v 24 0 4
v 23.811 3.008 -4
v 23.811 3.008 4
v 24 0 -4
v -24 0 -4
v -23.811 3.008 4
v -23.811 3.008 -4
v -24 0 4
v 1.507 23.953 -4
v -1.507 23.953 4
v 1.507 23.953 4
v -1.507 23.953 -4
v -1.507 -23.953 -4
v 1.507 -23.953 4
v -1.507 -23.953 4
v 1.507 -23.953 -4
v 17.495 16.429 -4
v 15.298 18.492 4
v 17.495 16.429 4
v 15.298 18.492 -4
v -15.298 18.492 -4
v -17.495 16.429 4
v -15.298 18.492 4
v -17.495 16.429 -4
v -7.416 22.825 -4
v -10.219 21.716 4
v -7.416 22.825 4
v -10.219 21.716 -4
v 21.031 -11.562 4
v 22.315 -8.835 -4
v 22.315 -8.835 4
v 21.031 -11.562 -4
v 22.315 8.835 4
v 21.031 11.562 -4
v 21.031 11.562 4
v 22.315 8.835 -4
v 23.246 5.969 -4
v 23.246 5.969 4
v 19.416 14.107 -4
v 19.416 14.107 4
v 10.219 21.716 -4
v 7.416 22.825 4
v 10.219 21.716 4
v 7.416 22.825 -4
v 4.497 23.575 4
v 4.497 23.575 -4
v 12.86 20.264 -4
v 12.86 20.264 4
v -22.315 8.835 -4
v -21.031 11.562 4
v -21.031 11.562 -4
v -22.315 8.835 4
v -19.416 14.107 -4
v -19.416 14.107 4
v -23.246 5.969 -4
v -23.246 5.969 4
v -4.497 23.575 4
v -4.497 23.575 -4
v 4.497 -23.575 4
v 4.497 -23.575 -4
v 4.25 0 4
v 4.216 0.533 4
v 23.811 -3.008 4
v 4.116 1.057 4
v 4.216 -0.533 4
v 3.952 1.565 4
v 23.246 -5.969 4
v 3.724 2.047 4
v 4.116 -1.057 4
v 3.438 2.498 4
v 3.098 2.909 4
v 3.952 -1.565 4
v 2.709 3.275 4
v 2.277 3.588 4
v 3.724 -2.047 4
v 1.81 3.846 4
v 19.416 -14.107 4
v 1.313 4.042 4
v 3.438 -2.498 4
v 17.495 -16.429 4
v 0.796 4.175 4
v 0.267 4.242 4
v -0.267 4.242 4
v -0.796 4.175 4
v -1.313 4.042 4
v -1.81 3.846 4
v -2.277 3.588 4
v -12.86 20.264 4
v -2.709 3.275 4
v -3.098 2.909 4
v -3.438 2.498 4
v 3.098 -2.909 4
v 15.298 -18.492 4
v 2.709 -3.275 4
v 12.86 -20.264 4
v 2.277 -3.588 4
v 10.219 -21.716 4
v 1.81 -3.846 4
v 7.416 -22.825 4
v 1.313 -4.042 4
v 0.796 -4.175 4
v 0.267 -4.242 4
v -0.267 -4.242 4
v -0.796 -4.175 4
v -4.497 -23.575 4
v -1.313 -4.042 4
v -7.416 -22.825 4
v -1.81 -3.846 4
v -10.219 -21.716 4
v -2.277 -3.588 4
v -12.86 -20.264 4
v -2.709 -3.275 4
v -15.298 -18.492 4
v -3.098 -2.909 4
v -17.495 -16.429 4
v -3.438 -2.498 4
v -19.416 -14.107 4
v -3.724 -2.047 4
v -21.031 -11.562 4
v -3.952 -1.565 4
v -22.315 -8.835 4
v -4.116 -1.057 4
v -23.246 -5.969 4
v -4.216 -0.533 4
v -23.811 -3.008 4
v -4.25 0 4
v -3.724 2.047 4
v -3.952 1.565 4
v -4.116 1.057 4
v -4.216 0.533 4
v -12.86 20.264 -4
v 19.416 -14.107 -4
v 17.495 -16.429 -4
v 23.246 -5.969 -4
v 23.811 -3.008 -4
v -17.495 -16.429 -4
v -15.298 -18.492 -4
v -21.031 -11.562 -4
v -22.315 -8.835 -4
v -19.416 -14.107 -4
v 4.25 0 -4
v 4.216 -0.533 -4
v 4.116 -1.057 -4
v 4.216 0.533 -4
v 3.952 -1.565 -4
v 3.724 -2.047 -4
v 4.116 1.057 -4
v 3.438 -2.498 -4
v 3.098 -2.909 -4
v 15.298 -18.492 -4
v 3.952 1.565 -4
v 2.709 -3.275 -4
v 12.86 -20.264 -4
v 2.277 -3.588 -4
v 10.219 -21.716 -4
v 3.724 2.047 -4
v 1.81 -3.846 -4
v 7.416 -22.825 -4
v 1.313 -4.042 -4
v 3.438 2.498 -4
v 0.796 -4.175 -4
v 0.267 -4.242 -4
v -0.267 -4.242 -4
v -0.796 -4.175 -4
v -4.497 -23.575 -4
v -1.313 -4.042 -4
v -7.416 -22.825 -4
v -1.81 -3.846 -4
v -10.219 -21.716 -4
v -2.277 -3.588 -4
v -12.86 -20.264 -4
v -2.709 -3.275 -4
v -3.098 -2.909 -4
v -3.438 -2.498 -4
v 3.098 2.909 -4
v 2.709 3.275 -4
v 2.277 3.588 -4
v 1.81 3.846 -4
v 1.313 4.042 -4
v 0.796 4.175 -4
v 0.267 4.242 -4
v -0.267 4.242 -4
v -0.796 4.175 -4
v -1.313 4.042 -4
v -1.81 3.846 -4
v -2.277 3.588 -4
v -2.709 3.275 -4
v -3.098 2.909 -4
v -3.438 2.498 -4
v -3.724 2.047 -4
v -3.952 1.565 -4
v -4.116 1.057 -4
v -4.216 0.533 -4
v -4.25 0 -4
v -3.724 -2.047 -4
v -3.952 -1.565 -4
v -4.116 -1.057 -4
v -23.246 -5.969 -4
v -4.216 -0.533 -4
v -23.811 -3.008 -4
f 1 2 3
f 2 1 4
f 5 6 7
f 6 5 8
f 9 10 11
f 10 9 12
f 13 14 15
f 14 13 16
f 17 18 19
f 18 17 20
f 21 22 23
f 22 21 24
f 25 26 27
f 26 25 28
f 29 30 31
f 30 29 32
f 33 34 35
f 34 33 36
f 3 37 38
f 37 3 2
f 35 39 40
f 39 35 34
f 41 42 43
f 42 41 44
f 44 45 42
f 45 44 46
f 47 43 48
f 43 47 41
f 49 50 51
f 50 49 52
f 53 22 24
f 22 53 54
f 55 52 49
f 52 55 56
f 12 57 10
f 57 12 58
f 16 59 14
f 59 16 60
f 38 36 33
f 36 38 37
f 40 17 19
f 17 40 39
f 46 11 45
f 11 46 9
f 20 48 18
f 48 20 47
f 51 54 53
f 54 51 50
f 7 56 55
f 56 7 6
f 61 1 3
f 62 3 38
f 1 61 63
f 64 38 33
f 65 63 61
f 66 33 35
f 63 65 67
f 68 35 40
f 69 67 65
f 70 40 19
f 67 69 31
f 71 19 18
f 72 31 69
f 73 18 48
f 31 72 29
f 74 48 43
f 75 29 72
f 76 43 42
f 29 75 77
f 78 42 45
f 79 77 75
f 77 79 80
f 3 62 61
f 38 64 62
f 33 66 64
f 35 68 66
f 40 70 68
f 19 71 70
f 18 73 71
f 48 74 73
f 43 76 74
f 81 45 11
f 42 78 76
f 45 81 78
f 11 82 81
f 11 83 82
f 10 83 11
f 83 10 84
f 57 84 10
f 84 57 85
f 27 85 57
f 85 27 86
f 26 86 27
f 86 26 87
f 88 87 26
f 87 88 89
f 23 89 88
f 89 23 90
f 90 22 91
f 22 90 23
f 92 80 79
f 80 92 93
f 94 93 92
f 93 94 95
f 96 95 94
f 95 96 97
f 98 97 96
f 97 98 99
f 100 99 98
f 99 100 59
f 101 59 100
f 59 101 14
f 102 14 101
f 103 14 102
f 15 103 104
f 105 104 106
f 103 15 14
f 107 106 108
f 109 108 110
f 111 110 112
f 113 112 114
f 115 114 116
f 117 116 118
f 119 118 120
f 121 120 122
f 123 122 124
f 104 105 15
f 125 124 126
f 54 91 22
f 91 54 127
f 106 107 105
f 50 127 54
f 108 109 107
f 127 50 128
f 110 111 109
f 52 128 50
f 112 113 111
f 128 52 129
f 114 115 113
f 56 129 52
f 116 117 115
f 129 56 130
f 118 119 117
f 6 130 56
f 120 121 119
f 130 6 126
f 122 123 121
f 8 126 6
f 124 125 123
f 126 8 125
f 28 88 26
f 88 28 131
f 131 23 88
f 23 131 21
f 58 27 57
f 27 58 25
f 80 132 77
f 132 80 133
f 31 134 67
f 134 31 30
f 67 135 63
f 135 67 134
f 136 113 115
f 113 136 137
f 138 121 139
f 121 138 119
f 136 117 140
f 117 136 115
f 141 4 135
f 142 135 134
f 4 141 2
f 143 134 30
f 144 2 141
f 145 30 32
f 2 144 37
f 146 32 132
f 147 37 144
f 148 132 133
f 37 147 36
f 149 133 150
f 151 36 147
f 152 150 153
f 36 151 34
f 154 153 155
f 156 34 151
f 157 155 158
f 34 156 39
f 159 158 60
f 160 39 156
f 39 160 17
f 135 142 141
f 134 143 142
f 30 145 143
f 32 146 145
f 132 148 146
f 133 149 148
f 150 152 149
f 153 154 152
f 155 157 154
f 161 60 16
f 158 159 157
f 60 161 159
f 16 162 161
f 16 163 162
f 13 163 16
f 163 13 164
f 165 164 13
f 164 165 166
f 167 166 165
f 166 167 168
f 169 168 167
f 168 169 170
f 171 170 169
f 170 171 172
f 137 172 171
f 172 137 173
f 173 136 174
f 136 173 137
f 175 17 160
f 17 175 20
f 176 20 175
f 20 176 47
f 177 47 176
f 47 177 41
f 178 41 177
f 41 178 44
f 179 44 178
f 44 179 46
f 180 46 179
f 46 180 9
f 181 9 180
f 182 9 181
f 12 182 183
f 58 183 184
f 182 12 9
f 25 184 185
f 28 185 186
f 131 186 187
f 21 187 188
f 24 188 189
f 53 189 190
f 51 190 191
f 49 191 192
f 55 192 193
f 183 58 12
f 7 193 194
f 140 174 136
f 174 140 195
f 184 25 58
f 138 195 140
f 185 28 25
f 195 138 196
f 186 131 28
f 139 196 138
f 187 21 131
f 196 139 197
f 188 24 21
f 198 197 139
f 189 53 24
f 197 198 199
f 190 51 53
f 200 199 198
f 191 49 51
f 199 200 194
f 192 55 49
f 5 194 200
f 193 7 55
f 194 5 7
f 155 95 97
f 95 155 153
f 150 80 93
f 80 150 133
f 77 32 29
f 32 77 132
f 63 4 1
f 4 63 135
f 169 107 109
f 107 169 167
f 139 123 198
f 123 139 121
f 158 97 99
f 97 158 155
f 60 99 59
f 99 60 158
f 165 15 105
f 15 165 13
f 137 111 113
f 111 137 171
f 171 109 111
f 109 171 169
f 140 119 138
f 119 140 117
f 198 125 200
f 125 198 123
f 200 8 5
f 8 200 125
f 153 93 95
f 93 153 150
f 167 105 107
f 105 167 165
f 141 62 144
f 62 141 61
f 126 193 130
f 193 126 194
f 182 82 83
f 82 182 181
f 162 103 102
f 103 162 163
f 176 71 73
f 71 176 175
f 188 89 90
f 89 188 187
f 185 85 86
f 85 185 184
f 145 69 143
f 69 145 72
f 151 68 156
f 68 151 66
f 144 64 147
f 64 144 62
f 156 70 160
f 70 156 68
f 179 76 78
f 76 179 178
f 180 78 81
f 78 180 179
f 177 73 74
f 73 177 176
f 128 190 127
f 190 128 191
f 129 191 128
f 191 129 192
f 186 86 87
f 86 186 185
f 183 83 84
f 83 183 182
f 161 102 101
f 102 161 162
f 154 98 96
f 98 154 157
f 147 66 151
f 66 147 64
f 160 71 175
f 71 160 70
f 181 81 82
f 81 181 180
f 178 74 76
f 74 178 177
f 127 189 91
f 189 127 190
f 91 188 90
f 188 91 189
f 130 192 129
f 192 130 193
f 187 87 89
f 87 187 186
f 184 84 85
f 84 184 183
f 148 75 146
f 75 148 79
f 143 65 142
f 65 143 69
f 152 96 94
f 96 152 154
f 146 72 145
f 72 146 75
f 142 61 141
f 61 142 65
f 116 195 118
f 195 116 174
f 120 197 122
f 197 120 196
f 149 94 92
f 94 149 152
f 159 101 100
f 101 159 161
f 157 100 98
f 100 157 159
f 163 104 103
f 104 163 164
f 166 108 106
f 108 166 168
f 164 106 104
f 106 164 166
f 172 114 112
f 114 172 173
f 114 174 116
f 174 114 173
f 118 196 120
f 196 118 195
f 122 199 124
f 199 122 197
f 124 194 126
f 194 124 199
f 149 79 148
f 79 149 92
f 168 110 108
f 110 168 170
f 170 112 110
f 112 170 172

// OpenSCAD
$fn = 50;


difference() {
	union() {
		translate(v = [0, 0, -4.0000000000]) {
			cylinder(h = 8, r = 24.0000000000);
		}
	}
	union() {
		translate(v = [0, 0, -100.0000000000]) {
			cylinder(h = 200, r = 4.2500000000);
		}
	}
}
